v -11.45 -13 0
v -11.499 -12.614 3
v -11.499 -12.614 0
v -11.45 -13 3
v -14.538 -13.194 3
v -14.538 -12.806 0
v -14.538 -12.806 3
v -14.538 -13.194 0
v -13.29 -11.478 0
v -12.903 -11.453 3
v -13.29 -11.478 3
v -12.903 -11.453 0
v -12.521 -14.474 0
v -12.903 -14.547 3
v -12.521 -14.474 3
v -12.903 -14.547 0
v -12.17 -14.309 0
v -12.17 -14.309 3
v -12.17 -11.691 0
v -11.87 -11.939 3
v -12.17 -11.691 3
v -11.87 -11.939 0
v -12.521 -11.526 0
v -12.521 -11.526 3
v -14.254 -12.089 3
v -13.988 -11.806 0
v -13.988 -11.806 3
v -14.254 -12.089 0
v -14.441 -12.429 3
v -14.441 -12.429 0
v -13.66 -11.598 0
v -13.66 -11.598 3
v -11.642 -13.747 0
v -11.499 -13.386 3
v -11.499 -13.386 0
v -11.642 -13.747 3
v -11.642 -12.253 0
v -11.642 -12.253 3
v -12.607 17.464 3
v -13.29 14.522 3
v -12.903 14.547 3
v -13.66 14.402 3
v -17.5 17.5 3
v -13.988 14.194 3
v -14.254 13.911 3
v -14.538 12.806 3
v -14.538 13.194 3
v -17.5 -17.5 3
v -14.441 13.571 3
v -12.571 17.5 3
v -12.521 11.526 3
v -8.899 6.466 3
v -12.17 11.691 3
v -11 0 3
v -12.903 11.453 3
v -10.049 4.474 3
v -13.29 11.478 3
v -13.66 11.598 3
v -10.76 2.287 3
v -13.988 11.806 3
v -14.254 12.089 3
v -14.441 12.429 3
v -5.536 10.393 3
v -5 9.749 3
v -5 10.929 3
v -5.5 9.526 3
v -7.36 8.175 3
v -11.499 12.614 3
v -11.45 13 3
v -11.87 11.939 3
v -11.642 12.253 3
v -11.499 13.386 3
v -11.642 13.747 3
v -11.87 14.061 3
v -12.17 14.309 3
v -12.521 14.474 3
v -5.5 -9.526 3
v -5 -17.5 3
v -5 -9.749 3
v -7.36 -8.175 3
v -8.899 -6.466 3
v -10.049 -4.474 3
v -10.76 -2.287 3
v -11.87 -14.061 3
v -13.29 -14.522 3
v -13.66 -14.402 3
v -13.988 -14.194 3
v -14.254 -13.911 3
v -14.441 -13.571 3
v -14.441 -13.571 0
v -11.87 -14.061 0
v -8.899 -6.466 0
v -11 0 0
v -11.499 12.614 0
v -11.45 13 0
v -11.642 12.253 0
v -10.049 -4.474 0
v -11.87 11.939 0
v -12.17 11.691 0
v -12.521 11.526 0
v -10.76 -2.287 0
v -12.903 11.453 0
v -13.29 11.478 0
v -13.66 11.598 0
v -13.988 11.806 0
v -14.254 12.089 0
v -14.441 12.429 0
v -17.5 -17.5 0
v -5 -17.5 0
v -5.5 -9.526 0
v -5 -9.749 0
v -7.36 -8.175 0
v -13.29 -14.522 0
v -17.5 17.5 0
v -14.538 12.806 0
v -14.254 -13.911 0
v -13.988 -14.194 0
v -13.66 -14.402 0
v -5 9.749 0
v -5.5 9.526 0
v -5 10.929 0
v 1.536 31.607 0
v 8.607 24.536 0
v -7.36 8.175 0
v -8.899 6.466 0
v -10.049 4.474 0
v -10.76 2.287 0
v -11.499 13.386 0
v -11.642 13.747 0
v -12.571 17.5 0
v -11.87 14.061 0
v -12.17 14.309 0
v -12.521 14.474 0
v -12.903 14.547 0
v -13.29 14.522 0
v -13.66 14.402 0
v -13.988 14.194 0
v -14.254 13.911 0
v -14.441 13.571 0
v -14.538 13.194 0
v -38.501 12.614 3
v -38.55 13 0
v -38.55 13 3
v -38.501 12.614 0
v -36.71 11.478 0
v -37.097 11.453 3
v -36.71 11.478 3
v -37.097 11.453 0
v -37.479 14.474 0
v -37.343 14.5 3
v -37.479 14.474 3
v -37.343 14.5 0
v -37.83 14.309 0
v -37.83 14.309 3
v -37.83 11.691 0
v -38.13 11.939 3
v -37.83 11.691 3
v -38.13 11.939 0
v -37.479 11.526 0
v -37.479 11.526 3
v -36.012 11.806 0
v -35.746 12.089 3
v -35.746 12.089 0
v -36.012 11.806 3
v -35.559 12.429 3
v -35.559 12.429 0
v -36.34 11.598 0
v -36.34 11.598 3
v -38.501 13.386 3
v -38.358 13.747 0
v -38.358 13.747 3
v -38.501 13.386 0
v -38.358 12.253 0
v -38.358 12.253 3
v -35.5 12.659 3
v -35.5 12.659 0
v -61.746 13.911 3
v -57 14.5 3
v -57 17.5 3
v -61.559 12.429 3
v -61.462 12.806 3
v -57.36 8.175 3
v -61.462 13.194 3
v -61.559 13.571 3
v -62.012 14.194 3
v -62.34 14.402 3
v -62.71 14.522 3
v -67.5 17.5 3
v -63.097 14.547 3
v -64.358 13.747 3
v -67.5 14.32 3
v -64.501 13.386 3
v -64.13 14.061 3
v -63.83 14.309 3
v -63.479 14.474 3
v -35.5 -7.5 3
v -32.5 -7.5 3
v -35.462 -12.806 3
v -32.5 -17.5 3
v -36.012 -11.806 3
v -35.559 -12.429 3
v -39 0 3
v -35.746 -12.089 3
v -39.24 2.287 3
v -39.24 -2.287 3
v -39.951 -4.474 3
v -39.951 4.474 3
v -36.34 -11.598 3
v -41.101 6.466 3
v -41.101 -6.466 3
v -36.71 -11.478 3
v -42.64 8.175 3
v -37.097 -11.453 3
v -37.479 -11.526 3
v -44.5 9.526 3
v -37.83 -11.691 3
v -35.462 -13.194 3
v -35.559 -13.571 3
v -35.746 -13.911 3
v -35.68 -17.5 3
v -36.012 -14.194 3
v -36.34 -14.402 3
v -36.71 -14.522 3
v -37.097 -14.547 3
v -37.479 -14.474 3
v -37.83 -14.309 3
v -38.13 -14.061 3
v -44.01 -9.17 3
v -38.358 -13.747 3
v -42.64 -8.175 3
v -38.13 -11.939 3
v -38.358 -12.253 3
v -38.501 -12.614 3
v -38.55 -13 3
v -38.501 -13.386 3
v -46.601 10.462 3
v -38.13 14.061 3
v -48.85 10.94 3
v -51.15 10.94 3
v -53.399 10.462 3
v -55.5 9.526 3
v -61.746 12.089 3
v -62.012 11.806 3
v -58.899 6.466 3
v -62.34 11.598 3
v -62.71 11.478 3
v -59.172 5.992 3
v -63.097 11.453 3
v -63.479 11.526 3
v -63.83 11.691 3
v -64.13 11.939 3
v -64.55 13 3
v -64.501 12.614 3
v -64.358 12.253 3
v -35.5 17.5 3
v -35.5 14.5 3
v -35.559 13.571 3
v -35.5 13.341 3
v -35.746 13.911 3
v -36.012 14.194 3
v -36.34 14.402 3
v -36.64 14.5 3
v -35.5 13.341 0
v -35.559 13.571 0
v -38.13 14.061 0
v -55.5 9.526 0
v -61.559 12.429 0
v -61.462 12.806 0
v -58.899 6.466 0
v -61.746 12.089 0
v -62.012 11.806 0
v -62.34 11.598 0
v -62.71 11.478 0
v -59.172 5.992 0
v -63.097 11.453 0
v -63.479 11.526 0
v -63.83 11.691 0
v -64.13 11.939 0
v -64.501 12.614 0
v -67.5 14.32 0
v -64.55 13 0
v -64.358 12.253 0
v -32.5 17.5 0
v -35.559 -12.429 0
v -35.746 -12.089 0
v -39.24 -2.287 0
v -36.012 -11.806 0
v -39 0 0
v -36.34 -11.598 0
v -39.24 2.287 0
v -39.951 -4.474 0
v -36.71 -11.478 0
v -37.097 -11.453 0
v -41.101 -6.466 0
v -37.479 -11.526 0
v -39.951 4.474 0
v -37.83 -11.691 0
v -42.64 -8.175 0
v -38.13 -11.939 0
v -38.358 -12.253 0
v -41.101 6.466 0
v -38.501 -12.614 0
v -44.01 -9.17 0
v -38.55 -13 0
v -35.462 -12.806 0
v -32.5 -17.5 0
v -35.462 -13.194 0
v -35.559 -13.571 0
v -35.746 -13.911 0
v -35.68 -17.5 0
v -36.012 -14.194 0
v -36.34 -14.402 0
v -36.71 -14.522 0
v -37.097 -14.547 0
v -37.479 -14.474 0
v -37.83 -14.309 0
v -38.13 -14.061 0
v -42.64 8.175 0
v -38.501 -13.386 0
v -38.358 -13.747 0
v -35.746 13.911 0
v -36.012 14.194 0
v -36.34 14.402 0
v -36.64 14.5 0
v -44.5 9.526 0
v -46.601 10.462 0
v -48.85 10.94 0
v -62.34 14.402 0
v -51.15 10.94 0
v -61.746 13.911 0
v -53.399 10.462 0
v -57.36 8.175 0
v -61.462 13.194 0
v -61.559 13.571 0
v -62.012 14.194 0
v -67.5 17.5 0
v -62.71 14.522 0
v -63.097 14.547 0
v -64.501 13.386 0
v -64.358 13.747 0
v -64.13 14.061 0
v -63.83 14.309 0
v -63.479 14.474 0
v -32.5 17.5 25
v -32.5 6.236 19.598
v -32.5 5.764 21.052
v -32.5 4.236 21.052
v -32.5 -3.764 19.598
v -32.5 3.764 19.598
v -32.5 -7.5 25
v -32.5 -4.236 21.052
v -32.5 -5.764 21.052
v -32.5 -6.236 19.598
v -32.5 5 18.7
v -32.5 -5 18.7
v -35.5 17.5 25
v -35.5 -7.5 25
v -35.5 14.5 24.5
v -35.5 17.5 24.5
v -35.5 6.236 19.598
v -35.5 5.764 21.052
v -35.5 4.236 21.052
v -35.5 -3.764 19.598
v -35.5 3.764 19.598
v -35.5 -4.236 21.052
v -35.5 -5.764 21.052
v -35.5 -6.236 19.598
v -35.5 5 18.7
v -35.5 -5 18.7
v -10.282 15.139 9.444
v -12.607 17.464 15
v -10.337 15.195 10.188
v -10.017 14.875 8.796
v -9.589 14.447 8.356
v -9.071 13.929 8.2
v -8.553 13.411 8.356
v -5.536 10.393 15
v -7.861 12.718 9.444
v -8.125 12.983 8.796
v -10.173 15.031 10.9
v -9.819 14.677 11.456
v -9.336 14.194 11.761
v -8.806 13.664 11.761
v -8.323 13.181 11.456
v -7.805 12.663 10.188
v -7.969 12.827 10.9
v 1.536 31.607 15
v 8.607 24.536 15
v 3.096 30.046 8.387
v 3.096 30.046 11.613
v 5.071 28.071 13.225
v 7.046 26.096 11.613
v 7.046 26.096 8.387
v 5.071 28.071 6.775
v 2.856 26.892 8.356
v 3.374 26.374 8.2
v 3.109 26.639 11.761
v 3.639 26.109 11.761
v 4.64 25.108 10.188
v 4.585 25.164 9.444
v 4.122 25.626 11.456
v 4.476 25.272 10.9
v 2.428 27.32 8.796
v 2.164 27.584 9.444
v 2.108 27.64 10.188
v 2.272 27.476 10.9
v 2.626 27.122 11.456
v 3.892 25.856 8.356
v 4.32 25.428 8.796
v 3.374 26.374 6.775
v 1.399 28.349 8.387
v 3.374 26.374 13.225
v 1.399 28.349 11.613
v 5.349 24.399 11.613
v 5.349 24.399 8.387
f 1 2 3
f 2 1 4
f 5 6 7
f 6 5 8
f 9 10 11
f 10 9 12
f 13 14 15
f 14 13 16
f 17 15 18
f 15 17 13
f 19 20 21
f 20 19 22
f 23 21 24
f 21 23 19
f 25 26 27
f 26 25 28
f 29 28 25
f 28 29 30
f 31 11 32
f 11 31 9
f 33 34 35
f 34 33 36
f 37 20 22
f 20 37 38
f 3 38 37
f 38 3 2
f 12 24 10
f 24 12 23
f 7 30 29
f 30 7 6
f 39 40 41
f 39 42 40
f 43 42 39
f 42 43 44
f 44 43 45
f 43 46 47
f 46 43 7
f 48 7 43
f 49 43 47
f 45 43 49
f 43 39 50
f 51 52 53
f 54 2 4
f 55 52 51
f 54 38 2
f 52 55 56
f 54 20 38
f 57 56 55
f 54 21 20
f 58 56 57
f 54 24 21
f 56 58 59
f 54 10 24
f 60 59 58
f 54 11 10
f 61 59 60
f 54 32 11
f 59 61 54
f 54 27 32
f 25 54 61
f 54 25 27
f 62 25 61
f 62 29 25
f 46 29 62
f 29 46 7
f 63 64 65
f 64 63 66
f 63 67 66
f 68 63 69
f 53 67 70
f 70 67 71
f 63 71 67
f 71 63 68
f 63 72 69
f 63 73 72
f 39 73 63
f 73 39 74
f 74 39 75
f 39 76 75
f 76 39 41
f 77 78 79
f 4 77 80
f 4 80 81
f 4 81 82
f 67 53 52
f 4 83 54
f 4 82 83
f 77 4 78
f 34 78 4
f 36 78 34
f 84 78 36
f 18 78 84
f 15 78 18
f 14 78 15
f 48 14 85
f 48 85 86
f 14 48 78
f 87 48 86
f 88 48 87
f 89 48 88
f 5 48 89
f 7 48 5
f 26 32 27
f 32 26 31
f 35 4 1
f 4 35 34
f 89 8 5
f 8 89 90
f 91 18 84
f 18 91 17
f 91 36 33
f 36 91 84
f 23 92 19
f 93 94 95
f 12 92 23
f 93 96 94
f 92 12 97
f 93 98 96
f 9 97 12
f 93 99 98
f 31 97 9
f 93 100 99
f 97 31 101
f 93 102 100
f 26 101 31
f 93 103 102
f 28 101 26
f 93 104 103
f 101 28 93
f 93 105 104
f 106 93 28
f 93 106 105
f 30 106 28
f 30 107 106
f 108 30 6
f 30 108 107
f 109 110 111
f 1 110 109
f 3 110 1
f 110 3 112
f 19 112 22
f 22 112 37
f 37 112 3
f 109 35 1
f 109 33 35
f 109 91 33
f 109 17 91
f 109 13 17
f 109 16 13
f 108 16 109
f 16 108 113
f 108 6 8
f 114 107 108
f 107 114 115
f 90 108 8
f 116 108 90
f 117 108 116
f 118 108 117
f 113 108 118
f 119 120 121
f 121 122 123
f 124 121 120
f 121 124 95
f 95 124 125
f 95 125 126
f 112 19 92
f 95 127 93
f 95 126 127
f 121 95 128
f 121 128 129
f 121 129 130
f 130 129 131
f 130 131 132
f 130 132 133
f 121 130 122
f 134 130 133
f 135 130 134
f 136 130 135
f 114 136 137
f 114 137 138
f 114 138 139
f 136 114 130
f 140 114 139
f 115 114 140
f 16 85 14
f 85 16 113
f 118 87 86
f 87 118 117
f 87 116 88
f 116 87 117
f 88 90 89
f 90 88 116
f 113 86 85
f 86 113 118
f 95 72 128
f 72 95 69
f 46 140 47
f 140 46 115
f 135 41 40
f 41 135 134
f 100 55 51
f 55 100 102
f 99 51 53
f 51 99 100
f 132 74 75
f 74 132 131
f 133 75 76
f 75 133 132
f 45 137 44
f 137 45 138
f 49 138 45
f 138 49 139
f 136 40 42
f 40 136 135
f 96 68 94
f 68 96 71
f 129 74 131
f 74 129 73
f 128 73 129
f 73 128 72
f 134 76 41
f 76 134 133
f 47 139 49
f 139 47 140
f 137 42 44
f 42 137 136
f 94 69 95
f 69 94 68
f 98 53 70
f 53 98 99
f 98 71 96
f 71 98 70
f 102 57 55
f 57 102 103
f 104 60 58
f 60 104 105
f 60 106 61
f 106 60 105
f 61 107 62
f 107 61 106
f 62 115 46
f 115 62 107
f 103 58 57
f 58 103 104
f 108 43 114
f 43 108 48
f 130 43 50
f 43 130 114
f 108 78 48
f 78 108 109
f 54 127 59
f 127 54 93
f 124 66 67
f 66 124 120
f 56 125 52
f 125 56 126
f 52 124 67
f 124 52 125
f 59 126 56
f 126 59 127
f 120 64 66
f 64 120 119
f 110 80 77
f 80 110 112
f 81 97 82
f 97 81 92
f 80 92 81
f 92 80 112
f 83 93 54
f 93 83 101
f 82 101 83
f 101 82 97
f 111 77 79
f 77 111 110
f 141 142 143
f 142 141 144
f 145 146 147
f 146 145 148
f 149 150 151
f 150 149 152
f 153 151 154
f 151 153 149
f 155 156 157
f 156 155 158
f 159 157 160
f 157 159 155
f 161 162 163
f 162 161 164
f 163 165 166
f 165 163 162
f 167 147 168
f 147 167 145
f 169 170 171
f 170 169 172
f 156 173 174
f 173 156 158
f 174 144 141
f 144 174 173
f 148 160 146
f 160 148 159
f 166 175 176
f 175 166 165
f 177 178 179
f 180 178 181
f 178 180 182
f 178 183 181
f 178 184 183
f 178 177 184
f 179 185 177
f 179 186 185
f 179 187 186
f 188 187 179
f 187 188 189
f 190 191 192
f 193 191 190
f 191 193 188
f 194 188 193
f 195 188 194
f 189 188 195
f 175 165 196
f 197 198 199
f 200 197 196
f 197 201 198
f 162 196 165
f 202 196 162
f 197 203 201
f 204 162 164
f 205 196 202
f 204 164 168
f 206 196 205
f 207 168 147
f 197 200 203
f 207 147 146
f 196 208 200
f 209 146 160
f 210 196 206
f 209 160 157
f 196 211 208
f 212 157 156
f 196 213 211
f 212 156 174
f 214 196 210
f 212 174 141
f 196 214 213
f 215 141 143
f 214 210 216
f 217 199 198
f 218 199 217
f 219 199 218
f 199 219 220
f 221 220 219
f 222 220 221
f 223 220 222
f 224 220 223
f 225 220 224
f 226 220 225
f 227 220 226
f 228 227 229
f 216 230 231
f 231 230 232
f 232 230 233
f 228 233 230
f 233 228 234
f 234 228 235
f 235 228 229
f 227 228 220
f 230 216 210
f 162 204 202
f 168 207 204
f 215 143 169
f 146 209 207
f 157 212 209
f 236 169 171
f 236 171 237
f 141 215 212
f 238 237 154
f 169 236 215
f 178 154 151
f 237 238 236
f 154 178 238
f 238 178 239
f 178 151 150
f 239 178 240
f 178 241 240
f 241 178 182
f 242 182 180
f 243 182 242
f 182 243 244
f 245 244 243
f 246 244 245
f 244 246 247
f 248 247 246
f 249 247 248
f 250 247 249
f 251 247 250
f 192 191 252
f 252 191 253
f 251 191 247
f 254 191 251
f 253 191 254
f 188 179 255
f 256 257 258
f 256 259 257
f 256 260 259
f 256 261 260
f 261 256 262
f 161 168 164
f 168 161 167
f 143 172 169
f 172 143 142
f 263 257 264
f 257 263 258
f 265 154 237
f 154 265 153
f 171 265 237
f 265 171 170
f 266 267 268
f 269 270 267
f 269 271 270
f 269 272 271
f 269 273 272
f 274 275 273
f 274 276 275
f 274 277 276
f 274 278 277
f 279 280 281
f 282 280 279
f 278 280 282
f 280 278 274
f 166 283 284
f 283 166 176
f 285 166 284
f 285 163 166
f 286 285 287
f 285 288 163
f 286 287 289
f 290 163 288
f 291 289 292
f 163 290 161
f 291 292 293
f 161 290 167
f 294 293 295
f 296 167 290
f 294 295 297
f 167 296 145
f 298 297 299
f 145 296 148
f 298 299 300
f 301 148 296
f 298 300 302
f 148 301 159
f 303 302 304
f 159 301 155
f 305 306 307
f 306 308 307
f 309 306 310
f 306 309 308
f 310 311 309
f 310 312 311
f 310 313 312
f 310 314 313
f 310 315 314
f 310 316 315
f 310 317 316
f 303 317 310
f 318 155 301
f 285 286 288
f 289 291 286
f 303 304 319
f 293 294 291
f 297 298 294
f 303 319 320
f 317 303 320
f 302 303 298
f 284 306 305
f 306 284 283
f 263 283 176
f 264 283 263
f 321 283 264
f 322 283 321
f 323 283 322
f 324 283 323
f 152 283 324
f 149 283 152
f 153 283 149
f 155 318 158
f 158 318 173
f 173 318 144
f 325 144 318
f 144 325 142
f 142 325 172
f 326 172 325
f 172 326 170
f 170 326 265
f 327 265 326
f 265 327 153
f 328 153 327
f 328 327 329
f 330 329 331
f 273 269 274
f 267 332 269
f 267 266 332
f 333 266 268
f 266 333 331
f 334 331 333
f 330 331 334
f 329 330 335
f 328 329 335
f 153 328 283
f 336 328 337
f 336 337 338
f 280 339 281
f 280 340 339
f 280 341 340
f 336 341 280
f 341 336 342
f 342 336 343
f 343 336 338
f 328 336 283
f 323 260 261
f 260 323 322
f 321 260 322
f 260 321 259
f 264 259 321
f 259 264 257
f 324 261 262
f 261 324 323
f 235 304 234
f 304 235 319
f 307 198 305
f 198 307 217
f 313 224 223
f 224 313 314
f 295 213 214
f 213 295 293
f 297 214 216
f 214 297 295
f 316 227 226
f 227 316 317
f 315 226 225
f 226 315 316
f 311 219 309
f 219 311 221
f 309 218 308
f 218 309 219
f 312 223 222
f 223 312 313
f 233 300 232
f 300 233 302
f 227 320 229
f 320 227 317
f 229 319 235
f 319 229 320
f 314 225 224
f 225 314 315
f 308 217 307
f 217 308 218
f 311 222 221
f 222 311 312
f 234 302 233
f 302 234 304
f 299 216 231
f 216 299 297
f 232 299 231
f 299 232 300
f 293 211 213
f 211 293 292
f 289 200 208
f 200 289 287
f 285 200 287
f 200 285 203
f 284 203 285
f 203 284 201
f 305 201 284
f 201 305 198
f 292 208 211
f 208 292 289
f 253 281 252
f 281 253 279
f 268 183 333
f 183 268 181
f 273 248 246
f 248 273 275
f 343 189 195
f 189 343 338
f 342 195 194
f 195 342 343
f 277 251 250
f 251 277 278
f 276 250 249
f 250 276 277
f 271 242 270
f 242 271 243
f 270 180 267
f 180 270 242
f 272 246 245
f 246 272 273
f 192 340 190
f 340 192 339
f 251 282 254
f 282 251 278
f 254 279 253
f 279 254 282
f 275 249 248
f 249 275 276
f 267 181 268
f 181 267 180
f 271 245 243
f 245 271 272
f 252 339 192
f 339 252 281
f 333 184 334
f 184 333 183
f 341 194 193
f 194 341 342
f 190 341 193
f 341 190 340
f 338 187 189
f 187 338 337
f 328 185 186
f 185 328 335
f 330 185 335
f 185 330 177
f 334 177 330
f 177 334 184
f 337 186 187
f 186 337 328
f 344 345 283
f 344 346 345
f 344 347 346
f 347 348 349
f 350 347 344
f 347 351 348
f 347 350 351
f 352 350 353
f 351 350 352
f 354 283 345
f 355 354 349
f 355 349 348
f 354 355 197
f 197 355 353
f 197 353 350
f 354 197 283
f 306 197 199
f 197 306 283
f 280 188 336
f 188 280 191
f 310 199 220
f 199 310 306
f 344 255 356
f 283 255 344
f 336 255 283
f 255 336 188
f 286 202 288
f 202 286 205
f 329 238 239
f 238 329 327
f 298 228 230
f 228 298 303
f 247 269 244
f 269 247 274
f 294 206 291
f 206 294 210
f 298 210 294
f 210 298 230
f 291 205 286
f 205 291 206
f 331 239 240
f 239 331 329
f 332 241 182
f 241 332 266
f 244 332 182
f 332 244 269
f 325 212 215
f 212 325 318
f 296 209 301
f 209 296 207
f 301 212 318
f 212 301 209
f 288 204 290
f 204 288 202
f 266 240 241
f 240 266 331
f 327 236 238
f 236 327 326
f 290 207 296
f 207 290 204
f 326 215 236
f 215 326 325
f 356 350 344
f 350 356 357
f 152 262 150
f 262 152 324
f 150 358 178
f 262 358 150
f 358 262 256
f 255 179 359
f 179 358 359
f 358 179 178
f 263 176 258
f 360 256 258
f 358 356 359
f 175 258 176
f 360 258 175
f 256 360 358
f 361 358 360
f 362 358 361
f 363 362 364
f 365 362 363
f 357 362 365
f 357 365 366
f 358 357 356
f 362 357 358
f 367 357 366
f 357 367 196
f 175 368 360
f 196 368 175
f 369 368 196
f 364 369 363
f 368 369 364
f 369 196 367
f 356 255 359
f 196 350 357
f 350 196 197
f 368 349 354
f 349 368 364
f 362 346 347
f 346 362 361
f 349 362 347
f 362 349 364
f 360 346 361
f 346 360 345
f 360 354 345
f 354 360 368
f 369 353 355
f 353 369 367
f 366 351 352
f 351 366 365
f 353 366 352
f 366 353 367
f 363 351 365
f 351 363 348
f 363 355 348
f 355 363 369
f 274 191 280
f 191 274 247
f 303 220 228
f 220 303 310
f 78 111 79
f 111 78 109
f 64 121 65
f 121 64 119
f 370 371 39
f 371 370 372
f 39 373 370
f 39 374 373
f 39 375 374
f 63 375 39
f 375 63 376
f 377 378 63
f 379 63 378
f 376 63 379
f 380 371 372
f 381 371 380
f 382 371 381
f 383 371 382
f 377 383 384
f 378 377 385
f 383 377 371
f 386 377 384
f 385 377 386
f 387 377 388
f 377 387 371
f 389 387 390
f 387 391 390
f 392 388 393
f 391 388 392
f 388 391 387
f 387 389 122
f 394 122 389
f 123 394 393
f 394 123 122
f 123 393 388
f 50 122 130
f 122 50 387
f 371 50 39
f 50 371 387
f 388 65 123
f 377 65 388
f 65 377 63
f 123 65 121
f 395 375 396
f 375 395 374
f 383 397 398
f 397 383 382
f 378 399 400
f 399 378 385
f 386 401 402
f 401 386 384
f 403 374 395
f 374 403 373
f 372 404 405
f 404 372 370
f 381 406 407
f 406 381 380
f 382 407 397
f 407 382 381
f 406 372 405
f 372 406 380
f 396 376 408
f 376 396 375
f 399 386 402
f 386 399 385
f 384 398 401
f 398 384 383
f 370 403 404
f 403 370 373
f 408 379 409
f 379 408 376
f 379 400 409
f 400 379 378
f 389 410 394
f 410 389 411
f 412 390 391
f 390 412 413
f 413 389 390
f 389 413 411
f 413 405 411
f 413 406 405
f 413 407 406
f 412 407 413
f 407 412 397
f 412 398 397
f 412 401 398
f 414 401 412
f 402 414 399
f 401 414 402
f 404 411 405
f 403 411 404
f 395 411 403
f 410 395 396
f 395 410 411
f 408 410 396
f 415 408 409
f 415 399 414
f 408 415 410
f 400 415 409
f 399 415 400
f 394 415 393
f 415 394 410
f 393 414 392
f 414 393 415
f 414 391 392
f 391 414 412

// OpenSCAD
nema_14_hole_spacing = 26;
nema_14_sides = 35;
nema_14_center_mount_dia = 22;

m3_dia = 3;
m3_nut_width = 5.5;
m3_nut_height = 2.4;
m2dot5_dia = 2.5;
clearance = 0.1;

thickness = 3;

endstop_holes_spacing = 10;
endstop_holes_height = 20;
endstop_mount_height = 25;

screw_mount_height = 15;
screw_mount_width = 10;
screw_mount_length = 20;
screw_mount_hole = 10;

translate([-50, 0, 0])  rotate([0, 0, 180]) endstop_holder();
screw_holder();

module base() {
    difference() {
        translate([0, 0, thickness/2]) cube([nema_14_sides, nema_14_sides, thickness], center=true);
        //center hole
        cylinder(d=nema_14_center_mount_dia, h=thickness);
        // mounting holes
        for(i=[-1,1]) {
            for(j=[-1,1]) {
                translate([i*nema_14_hole_spacing/2, j*nema_14_hole_spacing/2, 0]) cylinder(d=m3_dia + clearance, h=thickness, $fn=25);
            }
        }
    }
}

module endstop_holder() {
    difference() {
        union() {
            base();
            // endstop holder
            translate([-nema_14_sides/2, -nema_14_sides/2, 0]) cube([thickness, nema_14_sides - 10, endstop_mount_height]);
            // holder support
            difference() {
                translate([-nema_14_sides/2, -nema_14_sides/2 + thickness, 0]) rotate([0, 0, -90]) cube([thickness, nema_14_sides - 10, endstop_mount_height]);
                translate([10, -nema_14_sides/2 + thickness * 2, 0]) rotate([45, 0, -90])  cube([thickness* 2, 40, 40]);
            }

        }
        // endstop holes
        for(i=[-1,1])
            translate([-nema_14_sides/2, i*endstop_holes_spacing/2, endstop_holes_height]) rotate([0, 90, 0]) cylinder(d=m2dot5_dia + clearance, h=thickness);
        // cutting the base in half
        translate([nema_14_sides/2, nema_14_sides/2, thickness/2]) rotate([0, 0, 45]) cube([45, 45, thickness], center=true);
    }
}

module screw_holder() {
    difference() {
        base();
        // cutting base in half
        translate([nema_14_sides/2 -5, 0, thickness/2]) cube([nema_14_sides, nema_14_sides, thickness], center=true);
    }
    translate([-2, 21, 0]) {
        rotate([0, 0, 45]) {
            difference() {
            // adjustement screw holder
            translate([0, 0, screw_mount_height/2]) cube([screw_mount_length, screw_mount_width, screw_mount_height], center=true);
            // screw shaft
            translate([0, 0, screw_mount_hole]) rotate([0,90,0])  cylinder(d=m3_dia + 0.5 + clearance, h=screw_mount_length, center=true, $fn=15);
            // nut trap
            translate([screw_mount_length/2, 0, screw_mount_hole]) rotate([0,90,0])  cylinder(d=m3_nut_width / cos(180 / 6) + clearance, h=m3_nut_height * 2, center=true, $fn=6);
            }
        }
    }
}
